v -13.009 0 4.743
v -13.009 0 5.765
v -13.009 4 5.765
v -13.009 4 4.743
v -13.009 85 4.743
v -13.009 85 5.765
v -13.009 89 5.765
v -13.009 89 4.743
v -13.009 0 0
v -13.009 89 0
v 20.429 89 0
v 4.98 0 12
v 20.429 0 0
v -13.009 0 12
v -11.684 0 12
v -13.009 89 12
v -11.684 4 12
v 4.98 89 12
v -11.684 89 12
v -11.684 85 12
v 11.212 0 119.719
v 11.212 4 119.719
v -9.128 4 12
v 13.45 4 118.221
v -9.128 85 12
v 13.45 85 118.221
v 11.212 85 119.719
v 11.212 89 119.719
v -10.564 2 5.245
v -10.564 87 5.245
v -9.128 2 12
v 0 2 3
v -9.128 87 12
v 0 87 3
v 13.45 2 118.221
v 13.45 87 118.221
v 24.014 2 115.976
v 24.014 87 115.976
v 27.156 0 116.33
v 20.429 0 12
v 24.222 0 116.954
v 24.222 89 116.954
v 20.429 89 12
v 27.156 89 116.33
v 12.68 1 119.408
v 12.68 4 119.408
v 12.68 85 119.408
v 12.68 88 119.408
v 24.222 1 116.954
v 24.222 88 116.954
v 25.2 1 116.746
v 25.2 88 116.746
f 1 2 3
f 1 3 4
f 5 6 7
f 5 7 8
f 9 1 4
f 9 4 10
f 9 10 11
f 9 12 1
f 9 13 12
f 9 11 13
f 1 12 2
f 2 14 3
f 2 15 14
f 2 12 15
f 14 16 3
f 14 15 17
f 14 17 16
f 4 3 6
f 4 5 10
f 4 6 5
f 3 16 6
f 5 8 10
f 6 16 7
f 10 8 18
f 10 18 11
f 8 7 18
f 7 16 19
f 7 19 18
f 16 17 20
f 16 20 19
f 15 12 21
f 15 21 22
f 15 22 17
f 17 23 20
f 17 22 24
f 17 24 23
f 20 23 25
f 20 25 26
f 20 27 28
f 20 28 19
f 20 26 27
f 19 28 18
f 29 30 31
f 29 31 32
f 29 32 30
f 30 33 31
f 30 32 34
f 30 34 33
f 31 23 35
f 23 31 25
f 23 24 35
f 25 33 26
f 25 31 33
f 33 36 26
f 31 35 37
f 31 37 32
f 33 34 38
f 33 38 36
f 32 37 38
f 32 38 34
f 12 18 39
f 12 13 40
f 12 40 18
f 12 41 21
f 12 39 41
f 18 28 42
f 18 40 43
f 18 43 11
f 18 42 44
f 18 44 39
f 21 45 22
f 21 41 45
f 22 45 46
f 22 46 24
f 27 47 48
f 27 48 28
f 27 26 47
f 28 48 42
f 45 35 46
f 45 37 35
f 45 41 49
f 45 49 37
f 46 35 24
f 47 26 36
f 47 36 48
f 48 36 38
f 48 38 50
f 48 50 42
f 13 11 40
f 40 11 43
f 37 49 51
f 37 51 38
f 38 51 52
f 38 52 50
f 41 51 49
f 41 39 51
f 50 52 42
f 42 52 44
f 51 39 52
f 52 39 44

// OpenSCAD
// ars-stand-01.scad
// Suporte de mesa pra UMA slab graduada ARS, inclinada 12° pra trás.
// UMA peça só, ABERTA EM CIMA, imprime sem suporte.
// Mesmo desenho do ../bgs-stand-01 (derivado dele), só com a medida da ARS.
//
// COMO SE USA: a slab desce POR CIMA, entre os dois trilhos, e escorrega até
// o fundo do canal. Pra tirar, pinça a faixa de cima da slab que fica acima
// dos trilhos (~14.5mm, ver slab_livre) e puxa pra cima. Não há trava.
//
// O QUE SEGURA A SLAB:
//   - atrás: o PAINEL. A inclinação de 12° joga o peso da slab contra ele;
//     o centro de massa da slab fica 18.4mm atrás da aresta de baixo/frente,
//     então ela não tomba pra frente nem sem aba nenhuma;
//   - na frente: a ABA dos trilhos, que cobre 1.0-2.0mm de cada borda lateral
//     (1.5 com a slab centrada) da face ao longo de toda a altura do trilho (seguro contra esbarrão);
//   - dos lados: as paredes dos trilhos;
//   - embaixo: o piso do canal e o LÁBIO frontal da base (cobre ~7.1mm da
//     parte de baixo da face — conferir na slab real).
//   Pra cima só a gravidade segura — de propósito, é por onde ela sai.
//
// MEDIDA REAL: slab ARS medida pelo usuário em 2026-10-13: 84 x 131 x 9.8 mm
// (largura x altura x espessura). Não é estimativa nem catálogo.
//
// Exports canônicos (caminhos ABSOLUTOS; nesta máquina Windows o binário é
// "C:/Program Files/OpenSCAD/openscad.com"; no Linux, flatpak run org.openscad.OpenSCAD):
//   openscad -o <abs>/stl/ars-stand-01-stand.stl -D 'part="stand"' <abs>/ars-stand-01.scad
//   openscad -o <abs>/3mf/ars-stand-01.3mf       -D 'part="stand"' <abs>/ars-stand-01.scad
// O job de impressão é a própria peça, em pé (base na mesa), sem suporte.

/* [Peça a renderizar] */
part = "stand"; // "stand" | "check" (suporte + slab fantasma)

/* [Slab ARS - medida REAL do usuário, 2026-10-13] */
slab_w = 84;    // mm, largura
slab_h = 131;   // mm, altura
slab_t = 9.8;   // mm, espessura

/* [Folgas] */
fit_w = 0.5; // mm por lado, na largura (deslize longo: padrão 0.5/lado do repo)
fit_t = 0.5; // mm por lado, na espessura (idem)
fit_h = 0.5; // mm de sobra no comprimento, no fundo do canal
mouth_ch = 1; // mm, chanfro de entrada na boca do canal (topo dos trilhos e do painel)

/* [Postura] */
lean = 12; // graus de inclinação pra trás (o de referência tinha 11.9)

/* [Painel e trilhos] */
panel_t  = 3;   // mm, espessura do painel de trás
wall     = 2;   // mm, espessura da parede lateral do trilho
rail_lip = 2;   // mm, quanto a aba do trilho avança pra dentro do vão (por lado)
lip_t    = 2.5; // mm, espessura da aba do trilho e do lábio frontal da base
grip     = 15;  // mm do canal (L) que ficam acima dos trilhos e do painel; com a
                // slab assentada no piso sobram slab_livre = 14.5mm dela pra pinçar
rail_sink = 1;  // mm que o pé dos trilhos afunda na base (só fusão, não muda o vão)

/* [Base] */
floor_z   = 3;  // mm, material sólido abaixo do canal
lip_h     = 9;  // mm, altura do lábio frontal acima do piso do canal
base_back = 18; // mm, quanto a base avança atrás do pé do painel (é o que
                // impede o conjunto de cair pra trás — o centro de massa fica
                // atrás do painel por causa da inclinação)

/* [Qualidade] */
$fn = 48;

// ---------------------------------------------------------------------
// Derivados
// ---------------------------------------------------------------------
slot_t  = slab_t + 2 * fit_t; // vão pra espessura da slab
slot_w  = slab_w + 2 * fit_w; // vão pra largura da slab
outer_w = slot_w + 2 * wall;  // largura externa
L       = slab_h + fit_h;     // comprimento útil do canal, ao longo da slab

rail_d       = slot_t + lip_t;  // quanto o trilho avança à frente do painel
top_du       = L - grip;        // trilhos e painel terminam aqui (ao longo da slab)
lip_top      = floor_z + lip_h; // topo do lábio frontal da base

// Referencial da slab -> XZ do mundo.
// du = ao longo da slab (pra cima), dn = pra frente (saindo da face do painel).
// A origem (du=0, dn=0) é o canto de baixo/de trás do vão.
function pt(du, dn) = [ du * sin(lean) - dn * cos(lean),
                        floor_z + du * cos(lean) + dn * sin(lean) ];
// x da linha de dn constante, na altura z
function x_at_z(z, dn) = ((z - floor_z - dn * sin(lean)) / cos(lean)) * sin(lean)
                         - dn * cos(lean);

// A frente da base fica alinhada com o ponto mais avançado do trilho.
lip_front_x  = -rail_d * cos(lean);
base_back_x  = x_at_z(0, -panel_t) + base_back;
total_h      = pt(top_du, slot_t + lip_t)[1];   // ponto mais alto: frente do trilho no topo
base_depth   = base_back_x - lip_front_x;
env_back_x   = pt(top_du, -panel_t)[0];
env_depth    = max(base_back_x, env_back_x) - lip_front_x;
face_visivel = slot_w - 2 * rail_lip;
lip_sobre_slab = wall + rail_lip - (wall + fit_w); // aba cobrindo a borda da slab, por lado
// Slab ASSENTADA: apoiada no piso (du=0) e deitada contra o painel (dn=0..slab_t),
// que é onde a gravidade e a inclinação deixam ela.
slab_livre   = slab_h - top_du;                    // mm de slab acima dos trilhos, pra pinçar
slab_cg_du   = slab_h / 2;                         // centro da slab ao longo do canal
// recuo horizontal do CG da slab atrás da aresta de baixo/frente dela (pivô de tombar pra frente)
cg_atras_pivo = pt(slab_cg_du, slab_t / 2)[0] - pt(0, slab_t)[0];
montado_h    = pt(slab_h, slab_t)[1];              // altura do conjunto: canto de cima/frente da slab
// quanto o lábio da base cobre da parte de baixo da face da slab, medido ao longo da slab
labio_cobre  = (lip_top - floor_z - slab_t * sin(lean)) / cos(lean);

assert(grip > 0 && grip < slab_h / 2, "grip tem que deixar a maior parte da slab nos trilhos");
assert(top_du > slab_cg_du, "o centro da slab precisa ficar abaixo do topo dos trilhos");
assert(lip_sobre_slab > 0, "a aba tem que cobrir a borda da slab");

echo(str("ars-stand-01 SUPORTE: envelope ", env_depth, " x ", outer_w, " x ", total_h,
         " mm | base na mesa ", base_depth, " mm de profundidade"));
echo(str("  slab ", slab_w, " x ", slab_h, " x ", slab_t,
         " -> vao ", slot_w, " x ", L, " x ", slot_t, " | folga/lado ", fit_w, "/", fit_t));
echo(str("  trilhos/painel ate ", top_du, " mm ao longo da slab; ", slab_livre,
         " mm da slab livres acima pra pinçar | curso de insercao ", top_du, " mm"));
echo(str("  montado com slab: ", montado_h, " mm de altura | labio da base cobre ", labio_cobre,
         " mm da parte de baixo da face"));
echo(str("  aba cobre ", lip_sobre_slab, " mm de cada borda | face visivel ", face_visivel,
         " de ", slab_w, " mm | CG da slab ", cg_atras_pivo, " mm atras do pivo frontal"));

// ---------------------------------------------------------------------
// Suporte
// ---------------------------------------------------------------------
module stand() {
    difference() {
        // a intersecao apara o que o pe afundado dos trilhos passaria da frente da base
        intersection() {
            union() {
                // corpo: base + painel, em toda a largura
                xz_extrude(outer_w) polygon(body_profile());
                // dois trilhos em C, um em cada borda (o da direita espelhado)
                rail(0);
                rail(outer_w, true);
            }
            translate([lip_front_x, -1, 0]) cube([500, outer_w + 2, 500]);
        }
        mouth_chamfer();
    }
}

// Silhueta lateral do corpo (base + painel). O vão da slab NÃO faz parte dela
// — é o recorte entre o lábio frontal e a face do painel; quem devolve as
// paredes desse canal são os trilhos.
function body_profile() = [
    [lip_front_x, 0],                        // frente, na mesa
    [lip_front_x, lip_top],                  // sobe a face do lábio
    [x_at_z(lip_top, slot_t), lip_top],      // topo do lábio
    pt(0, slot_t),                           // desce a face frontal do canal
    pt(0, 0),                                // piso do canal (inclinado, casa com a base da slab)
    pt(top_du, 0),                           // sobe a face frontal do painel
    pt(top_du, -panel_t),                    // topo do painel
    [x_at_z(lip_top, -panel_t), lip_top],    // desce a face de trás do painel
    [base_back_x, lip_top],                  // topo da base, atrás do painel
    [base_back_x, 0]                         // face de trás da base, na mesa
];

// Trilho em C numa borda: parede lateral + aba que avança sobre a face da
// slab. Tudo parede vertical: a cada camada a seção é a de baixo deslocada
// 0.04mm pela inclinação, então não existe balanço nenhum.
module rail(y0, flip = false) {
    in_slab_frame()
        translate([0, y0, 0]) {
            if (flip) mirror([0, 1, 0]) rail_body();
            else rail_body();
        }
}

module rail_body() {
    // começa rail_sink abaixo do piso do canal pra fundir de verdade com a base
    // (com o pé exatamente no plano do piso sobrava uma lasca de 1e-5mm)
    translate([-rail_d, 0, -rail_sink]) cube([rail_d, wall, top_du + rail_sink]);           // parede lateral
    translate([-rail_d, 0, -rail_sink]) cube([lip_t, wall + rail_lip, top_du + rail_sink]); // aba sobre a face da slab
}

// Chanfro de entrada na boca: tronco de pirâmide que abre o vão em mouth_ch
// pra cada lado no topo (aba, paredes e painel), guiando a slab pra dentro.
module mouth_chamfer() {
    in_slab_frame()
        hull() {
            translate([-slot_t, wall, top_du - mouth_ch])
                cube([slot_t, slot_w, 0.01]);
            translate([-slot_t - mouth_ch, wall - mouth_ch, top_du])
                cube([slot_t + 2 * mouth_ch, slot_w + 2 * mouth_ch, 1]);
        }
}

// ---------------------------------------------------------------------
// Comuns
// ---------------------------------------------------------------------
// Coloca os filhos no referencial da slab: X = pra TRÁS, Y = largura,
// Z = ao longo da slab. A origem fica no canto de baixo/de trás do vão.
module in_slab_frame() {
    translate([0, 0, floor_z])
        rotate([0, lean, 0])
            children();
}

// A slab, só pra conferência visual de encaixe (part="check"), assentada.
module slab_ghost() {
    in_slab_frame()
        translate([-slab_t, wall + fit_w, 0])  // assentada: no piso, contra o painel
            cube([slab_t, slab_w, slab_h]);
}

// Extrusão de um perfil do plano XZ ao longo de Y (0..h).
module xz_extrude(h) {
    translate([0, h, 0])
        rotate([90, 0, 0])
            linear_extrude(h)
                children();
}

// ---------------------------------------------------------------------
// Render
// ---------------------------------------------------------------------
if (part == "check") {
    stand();
    %slab_ghost();
} else {
    stand();
}
